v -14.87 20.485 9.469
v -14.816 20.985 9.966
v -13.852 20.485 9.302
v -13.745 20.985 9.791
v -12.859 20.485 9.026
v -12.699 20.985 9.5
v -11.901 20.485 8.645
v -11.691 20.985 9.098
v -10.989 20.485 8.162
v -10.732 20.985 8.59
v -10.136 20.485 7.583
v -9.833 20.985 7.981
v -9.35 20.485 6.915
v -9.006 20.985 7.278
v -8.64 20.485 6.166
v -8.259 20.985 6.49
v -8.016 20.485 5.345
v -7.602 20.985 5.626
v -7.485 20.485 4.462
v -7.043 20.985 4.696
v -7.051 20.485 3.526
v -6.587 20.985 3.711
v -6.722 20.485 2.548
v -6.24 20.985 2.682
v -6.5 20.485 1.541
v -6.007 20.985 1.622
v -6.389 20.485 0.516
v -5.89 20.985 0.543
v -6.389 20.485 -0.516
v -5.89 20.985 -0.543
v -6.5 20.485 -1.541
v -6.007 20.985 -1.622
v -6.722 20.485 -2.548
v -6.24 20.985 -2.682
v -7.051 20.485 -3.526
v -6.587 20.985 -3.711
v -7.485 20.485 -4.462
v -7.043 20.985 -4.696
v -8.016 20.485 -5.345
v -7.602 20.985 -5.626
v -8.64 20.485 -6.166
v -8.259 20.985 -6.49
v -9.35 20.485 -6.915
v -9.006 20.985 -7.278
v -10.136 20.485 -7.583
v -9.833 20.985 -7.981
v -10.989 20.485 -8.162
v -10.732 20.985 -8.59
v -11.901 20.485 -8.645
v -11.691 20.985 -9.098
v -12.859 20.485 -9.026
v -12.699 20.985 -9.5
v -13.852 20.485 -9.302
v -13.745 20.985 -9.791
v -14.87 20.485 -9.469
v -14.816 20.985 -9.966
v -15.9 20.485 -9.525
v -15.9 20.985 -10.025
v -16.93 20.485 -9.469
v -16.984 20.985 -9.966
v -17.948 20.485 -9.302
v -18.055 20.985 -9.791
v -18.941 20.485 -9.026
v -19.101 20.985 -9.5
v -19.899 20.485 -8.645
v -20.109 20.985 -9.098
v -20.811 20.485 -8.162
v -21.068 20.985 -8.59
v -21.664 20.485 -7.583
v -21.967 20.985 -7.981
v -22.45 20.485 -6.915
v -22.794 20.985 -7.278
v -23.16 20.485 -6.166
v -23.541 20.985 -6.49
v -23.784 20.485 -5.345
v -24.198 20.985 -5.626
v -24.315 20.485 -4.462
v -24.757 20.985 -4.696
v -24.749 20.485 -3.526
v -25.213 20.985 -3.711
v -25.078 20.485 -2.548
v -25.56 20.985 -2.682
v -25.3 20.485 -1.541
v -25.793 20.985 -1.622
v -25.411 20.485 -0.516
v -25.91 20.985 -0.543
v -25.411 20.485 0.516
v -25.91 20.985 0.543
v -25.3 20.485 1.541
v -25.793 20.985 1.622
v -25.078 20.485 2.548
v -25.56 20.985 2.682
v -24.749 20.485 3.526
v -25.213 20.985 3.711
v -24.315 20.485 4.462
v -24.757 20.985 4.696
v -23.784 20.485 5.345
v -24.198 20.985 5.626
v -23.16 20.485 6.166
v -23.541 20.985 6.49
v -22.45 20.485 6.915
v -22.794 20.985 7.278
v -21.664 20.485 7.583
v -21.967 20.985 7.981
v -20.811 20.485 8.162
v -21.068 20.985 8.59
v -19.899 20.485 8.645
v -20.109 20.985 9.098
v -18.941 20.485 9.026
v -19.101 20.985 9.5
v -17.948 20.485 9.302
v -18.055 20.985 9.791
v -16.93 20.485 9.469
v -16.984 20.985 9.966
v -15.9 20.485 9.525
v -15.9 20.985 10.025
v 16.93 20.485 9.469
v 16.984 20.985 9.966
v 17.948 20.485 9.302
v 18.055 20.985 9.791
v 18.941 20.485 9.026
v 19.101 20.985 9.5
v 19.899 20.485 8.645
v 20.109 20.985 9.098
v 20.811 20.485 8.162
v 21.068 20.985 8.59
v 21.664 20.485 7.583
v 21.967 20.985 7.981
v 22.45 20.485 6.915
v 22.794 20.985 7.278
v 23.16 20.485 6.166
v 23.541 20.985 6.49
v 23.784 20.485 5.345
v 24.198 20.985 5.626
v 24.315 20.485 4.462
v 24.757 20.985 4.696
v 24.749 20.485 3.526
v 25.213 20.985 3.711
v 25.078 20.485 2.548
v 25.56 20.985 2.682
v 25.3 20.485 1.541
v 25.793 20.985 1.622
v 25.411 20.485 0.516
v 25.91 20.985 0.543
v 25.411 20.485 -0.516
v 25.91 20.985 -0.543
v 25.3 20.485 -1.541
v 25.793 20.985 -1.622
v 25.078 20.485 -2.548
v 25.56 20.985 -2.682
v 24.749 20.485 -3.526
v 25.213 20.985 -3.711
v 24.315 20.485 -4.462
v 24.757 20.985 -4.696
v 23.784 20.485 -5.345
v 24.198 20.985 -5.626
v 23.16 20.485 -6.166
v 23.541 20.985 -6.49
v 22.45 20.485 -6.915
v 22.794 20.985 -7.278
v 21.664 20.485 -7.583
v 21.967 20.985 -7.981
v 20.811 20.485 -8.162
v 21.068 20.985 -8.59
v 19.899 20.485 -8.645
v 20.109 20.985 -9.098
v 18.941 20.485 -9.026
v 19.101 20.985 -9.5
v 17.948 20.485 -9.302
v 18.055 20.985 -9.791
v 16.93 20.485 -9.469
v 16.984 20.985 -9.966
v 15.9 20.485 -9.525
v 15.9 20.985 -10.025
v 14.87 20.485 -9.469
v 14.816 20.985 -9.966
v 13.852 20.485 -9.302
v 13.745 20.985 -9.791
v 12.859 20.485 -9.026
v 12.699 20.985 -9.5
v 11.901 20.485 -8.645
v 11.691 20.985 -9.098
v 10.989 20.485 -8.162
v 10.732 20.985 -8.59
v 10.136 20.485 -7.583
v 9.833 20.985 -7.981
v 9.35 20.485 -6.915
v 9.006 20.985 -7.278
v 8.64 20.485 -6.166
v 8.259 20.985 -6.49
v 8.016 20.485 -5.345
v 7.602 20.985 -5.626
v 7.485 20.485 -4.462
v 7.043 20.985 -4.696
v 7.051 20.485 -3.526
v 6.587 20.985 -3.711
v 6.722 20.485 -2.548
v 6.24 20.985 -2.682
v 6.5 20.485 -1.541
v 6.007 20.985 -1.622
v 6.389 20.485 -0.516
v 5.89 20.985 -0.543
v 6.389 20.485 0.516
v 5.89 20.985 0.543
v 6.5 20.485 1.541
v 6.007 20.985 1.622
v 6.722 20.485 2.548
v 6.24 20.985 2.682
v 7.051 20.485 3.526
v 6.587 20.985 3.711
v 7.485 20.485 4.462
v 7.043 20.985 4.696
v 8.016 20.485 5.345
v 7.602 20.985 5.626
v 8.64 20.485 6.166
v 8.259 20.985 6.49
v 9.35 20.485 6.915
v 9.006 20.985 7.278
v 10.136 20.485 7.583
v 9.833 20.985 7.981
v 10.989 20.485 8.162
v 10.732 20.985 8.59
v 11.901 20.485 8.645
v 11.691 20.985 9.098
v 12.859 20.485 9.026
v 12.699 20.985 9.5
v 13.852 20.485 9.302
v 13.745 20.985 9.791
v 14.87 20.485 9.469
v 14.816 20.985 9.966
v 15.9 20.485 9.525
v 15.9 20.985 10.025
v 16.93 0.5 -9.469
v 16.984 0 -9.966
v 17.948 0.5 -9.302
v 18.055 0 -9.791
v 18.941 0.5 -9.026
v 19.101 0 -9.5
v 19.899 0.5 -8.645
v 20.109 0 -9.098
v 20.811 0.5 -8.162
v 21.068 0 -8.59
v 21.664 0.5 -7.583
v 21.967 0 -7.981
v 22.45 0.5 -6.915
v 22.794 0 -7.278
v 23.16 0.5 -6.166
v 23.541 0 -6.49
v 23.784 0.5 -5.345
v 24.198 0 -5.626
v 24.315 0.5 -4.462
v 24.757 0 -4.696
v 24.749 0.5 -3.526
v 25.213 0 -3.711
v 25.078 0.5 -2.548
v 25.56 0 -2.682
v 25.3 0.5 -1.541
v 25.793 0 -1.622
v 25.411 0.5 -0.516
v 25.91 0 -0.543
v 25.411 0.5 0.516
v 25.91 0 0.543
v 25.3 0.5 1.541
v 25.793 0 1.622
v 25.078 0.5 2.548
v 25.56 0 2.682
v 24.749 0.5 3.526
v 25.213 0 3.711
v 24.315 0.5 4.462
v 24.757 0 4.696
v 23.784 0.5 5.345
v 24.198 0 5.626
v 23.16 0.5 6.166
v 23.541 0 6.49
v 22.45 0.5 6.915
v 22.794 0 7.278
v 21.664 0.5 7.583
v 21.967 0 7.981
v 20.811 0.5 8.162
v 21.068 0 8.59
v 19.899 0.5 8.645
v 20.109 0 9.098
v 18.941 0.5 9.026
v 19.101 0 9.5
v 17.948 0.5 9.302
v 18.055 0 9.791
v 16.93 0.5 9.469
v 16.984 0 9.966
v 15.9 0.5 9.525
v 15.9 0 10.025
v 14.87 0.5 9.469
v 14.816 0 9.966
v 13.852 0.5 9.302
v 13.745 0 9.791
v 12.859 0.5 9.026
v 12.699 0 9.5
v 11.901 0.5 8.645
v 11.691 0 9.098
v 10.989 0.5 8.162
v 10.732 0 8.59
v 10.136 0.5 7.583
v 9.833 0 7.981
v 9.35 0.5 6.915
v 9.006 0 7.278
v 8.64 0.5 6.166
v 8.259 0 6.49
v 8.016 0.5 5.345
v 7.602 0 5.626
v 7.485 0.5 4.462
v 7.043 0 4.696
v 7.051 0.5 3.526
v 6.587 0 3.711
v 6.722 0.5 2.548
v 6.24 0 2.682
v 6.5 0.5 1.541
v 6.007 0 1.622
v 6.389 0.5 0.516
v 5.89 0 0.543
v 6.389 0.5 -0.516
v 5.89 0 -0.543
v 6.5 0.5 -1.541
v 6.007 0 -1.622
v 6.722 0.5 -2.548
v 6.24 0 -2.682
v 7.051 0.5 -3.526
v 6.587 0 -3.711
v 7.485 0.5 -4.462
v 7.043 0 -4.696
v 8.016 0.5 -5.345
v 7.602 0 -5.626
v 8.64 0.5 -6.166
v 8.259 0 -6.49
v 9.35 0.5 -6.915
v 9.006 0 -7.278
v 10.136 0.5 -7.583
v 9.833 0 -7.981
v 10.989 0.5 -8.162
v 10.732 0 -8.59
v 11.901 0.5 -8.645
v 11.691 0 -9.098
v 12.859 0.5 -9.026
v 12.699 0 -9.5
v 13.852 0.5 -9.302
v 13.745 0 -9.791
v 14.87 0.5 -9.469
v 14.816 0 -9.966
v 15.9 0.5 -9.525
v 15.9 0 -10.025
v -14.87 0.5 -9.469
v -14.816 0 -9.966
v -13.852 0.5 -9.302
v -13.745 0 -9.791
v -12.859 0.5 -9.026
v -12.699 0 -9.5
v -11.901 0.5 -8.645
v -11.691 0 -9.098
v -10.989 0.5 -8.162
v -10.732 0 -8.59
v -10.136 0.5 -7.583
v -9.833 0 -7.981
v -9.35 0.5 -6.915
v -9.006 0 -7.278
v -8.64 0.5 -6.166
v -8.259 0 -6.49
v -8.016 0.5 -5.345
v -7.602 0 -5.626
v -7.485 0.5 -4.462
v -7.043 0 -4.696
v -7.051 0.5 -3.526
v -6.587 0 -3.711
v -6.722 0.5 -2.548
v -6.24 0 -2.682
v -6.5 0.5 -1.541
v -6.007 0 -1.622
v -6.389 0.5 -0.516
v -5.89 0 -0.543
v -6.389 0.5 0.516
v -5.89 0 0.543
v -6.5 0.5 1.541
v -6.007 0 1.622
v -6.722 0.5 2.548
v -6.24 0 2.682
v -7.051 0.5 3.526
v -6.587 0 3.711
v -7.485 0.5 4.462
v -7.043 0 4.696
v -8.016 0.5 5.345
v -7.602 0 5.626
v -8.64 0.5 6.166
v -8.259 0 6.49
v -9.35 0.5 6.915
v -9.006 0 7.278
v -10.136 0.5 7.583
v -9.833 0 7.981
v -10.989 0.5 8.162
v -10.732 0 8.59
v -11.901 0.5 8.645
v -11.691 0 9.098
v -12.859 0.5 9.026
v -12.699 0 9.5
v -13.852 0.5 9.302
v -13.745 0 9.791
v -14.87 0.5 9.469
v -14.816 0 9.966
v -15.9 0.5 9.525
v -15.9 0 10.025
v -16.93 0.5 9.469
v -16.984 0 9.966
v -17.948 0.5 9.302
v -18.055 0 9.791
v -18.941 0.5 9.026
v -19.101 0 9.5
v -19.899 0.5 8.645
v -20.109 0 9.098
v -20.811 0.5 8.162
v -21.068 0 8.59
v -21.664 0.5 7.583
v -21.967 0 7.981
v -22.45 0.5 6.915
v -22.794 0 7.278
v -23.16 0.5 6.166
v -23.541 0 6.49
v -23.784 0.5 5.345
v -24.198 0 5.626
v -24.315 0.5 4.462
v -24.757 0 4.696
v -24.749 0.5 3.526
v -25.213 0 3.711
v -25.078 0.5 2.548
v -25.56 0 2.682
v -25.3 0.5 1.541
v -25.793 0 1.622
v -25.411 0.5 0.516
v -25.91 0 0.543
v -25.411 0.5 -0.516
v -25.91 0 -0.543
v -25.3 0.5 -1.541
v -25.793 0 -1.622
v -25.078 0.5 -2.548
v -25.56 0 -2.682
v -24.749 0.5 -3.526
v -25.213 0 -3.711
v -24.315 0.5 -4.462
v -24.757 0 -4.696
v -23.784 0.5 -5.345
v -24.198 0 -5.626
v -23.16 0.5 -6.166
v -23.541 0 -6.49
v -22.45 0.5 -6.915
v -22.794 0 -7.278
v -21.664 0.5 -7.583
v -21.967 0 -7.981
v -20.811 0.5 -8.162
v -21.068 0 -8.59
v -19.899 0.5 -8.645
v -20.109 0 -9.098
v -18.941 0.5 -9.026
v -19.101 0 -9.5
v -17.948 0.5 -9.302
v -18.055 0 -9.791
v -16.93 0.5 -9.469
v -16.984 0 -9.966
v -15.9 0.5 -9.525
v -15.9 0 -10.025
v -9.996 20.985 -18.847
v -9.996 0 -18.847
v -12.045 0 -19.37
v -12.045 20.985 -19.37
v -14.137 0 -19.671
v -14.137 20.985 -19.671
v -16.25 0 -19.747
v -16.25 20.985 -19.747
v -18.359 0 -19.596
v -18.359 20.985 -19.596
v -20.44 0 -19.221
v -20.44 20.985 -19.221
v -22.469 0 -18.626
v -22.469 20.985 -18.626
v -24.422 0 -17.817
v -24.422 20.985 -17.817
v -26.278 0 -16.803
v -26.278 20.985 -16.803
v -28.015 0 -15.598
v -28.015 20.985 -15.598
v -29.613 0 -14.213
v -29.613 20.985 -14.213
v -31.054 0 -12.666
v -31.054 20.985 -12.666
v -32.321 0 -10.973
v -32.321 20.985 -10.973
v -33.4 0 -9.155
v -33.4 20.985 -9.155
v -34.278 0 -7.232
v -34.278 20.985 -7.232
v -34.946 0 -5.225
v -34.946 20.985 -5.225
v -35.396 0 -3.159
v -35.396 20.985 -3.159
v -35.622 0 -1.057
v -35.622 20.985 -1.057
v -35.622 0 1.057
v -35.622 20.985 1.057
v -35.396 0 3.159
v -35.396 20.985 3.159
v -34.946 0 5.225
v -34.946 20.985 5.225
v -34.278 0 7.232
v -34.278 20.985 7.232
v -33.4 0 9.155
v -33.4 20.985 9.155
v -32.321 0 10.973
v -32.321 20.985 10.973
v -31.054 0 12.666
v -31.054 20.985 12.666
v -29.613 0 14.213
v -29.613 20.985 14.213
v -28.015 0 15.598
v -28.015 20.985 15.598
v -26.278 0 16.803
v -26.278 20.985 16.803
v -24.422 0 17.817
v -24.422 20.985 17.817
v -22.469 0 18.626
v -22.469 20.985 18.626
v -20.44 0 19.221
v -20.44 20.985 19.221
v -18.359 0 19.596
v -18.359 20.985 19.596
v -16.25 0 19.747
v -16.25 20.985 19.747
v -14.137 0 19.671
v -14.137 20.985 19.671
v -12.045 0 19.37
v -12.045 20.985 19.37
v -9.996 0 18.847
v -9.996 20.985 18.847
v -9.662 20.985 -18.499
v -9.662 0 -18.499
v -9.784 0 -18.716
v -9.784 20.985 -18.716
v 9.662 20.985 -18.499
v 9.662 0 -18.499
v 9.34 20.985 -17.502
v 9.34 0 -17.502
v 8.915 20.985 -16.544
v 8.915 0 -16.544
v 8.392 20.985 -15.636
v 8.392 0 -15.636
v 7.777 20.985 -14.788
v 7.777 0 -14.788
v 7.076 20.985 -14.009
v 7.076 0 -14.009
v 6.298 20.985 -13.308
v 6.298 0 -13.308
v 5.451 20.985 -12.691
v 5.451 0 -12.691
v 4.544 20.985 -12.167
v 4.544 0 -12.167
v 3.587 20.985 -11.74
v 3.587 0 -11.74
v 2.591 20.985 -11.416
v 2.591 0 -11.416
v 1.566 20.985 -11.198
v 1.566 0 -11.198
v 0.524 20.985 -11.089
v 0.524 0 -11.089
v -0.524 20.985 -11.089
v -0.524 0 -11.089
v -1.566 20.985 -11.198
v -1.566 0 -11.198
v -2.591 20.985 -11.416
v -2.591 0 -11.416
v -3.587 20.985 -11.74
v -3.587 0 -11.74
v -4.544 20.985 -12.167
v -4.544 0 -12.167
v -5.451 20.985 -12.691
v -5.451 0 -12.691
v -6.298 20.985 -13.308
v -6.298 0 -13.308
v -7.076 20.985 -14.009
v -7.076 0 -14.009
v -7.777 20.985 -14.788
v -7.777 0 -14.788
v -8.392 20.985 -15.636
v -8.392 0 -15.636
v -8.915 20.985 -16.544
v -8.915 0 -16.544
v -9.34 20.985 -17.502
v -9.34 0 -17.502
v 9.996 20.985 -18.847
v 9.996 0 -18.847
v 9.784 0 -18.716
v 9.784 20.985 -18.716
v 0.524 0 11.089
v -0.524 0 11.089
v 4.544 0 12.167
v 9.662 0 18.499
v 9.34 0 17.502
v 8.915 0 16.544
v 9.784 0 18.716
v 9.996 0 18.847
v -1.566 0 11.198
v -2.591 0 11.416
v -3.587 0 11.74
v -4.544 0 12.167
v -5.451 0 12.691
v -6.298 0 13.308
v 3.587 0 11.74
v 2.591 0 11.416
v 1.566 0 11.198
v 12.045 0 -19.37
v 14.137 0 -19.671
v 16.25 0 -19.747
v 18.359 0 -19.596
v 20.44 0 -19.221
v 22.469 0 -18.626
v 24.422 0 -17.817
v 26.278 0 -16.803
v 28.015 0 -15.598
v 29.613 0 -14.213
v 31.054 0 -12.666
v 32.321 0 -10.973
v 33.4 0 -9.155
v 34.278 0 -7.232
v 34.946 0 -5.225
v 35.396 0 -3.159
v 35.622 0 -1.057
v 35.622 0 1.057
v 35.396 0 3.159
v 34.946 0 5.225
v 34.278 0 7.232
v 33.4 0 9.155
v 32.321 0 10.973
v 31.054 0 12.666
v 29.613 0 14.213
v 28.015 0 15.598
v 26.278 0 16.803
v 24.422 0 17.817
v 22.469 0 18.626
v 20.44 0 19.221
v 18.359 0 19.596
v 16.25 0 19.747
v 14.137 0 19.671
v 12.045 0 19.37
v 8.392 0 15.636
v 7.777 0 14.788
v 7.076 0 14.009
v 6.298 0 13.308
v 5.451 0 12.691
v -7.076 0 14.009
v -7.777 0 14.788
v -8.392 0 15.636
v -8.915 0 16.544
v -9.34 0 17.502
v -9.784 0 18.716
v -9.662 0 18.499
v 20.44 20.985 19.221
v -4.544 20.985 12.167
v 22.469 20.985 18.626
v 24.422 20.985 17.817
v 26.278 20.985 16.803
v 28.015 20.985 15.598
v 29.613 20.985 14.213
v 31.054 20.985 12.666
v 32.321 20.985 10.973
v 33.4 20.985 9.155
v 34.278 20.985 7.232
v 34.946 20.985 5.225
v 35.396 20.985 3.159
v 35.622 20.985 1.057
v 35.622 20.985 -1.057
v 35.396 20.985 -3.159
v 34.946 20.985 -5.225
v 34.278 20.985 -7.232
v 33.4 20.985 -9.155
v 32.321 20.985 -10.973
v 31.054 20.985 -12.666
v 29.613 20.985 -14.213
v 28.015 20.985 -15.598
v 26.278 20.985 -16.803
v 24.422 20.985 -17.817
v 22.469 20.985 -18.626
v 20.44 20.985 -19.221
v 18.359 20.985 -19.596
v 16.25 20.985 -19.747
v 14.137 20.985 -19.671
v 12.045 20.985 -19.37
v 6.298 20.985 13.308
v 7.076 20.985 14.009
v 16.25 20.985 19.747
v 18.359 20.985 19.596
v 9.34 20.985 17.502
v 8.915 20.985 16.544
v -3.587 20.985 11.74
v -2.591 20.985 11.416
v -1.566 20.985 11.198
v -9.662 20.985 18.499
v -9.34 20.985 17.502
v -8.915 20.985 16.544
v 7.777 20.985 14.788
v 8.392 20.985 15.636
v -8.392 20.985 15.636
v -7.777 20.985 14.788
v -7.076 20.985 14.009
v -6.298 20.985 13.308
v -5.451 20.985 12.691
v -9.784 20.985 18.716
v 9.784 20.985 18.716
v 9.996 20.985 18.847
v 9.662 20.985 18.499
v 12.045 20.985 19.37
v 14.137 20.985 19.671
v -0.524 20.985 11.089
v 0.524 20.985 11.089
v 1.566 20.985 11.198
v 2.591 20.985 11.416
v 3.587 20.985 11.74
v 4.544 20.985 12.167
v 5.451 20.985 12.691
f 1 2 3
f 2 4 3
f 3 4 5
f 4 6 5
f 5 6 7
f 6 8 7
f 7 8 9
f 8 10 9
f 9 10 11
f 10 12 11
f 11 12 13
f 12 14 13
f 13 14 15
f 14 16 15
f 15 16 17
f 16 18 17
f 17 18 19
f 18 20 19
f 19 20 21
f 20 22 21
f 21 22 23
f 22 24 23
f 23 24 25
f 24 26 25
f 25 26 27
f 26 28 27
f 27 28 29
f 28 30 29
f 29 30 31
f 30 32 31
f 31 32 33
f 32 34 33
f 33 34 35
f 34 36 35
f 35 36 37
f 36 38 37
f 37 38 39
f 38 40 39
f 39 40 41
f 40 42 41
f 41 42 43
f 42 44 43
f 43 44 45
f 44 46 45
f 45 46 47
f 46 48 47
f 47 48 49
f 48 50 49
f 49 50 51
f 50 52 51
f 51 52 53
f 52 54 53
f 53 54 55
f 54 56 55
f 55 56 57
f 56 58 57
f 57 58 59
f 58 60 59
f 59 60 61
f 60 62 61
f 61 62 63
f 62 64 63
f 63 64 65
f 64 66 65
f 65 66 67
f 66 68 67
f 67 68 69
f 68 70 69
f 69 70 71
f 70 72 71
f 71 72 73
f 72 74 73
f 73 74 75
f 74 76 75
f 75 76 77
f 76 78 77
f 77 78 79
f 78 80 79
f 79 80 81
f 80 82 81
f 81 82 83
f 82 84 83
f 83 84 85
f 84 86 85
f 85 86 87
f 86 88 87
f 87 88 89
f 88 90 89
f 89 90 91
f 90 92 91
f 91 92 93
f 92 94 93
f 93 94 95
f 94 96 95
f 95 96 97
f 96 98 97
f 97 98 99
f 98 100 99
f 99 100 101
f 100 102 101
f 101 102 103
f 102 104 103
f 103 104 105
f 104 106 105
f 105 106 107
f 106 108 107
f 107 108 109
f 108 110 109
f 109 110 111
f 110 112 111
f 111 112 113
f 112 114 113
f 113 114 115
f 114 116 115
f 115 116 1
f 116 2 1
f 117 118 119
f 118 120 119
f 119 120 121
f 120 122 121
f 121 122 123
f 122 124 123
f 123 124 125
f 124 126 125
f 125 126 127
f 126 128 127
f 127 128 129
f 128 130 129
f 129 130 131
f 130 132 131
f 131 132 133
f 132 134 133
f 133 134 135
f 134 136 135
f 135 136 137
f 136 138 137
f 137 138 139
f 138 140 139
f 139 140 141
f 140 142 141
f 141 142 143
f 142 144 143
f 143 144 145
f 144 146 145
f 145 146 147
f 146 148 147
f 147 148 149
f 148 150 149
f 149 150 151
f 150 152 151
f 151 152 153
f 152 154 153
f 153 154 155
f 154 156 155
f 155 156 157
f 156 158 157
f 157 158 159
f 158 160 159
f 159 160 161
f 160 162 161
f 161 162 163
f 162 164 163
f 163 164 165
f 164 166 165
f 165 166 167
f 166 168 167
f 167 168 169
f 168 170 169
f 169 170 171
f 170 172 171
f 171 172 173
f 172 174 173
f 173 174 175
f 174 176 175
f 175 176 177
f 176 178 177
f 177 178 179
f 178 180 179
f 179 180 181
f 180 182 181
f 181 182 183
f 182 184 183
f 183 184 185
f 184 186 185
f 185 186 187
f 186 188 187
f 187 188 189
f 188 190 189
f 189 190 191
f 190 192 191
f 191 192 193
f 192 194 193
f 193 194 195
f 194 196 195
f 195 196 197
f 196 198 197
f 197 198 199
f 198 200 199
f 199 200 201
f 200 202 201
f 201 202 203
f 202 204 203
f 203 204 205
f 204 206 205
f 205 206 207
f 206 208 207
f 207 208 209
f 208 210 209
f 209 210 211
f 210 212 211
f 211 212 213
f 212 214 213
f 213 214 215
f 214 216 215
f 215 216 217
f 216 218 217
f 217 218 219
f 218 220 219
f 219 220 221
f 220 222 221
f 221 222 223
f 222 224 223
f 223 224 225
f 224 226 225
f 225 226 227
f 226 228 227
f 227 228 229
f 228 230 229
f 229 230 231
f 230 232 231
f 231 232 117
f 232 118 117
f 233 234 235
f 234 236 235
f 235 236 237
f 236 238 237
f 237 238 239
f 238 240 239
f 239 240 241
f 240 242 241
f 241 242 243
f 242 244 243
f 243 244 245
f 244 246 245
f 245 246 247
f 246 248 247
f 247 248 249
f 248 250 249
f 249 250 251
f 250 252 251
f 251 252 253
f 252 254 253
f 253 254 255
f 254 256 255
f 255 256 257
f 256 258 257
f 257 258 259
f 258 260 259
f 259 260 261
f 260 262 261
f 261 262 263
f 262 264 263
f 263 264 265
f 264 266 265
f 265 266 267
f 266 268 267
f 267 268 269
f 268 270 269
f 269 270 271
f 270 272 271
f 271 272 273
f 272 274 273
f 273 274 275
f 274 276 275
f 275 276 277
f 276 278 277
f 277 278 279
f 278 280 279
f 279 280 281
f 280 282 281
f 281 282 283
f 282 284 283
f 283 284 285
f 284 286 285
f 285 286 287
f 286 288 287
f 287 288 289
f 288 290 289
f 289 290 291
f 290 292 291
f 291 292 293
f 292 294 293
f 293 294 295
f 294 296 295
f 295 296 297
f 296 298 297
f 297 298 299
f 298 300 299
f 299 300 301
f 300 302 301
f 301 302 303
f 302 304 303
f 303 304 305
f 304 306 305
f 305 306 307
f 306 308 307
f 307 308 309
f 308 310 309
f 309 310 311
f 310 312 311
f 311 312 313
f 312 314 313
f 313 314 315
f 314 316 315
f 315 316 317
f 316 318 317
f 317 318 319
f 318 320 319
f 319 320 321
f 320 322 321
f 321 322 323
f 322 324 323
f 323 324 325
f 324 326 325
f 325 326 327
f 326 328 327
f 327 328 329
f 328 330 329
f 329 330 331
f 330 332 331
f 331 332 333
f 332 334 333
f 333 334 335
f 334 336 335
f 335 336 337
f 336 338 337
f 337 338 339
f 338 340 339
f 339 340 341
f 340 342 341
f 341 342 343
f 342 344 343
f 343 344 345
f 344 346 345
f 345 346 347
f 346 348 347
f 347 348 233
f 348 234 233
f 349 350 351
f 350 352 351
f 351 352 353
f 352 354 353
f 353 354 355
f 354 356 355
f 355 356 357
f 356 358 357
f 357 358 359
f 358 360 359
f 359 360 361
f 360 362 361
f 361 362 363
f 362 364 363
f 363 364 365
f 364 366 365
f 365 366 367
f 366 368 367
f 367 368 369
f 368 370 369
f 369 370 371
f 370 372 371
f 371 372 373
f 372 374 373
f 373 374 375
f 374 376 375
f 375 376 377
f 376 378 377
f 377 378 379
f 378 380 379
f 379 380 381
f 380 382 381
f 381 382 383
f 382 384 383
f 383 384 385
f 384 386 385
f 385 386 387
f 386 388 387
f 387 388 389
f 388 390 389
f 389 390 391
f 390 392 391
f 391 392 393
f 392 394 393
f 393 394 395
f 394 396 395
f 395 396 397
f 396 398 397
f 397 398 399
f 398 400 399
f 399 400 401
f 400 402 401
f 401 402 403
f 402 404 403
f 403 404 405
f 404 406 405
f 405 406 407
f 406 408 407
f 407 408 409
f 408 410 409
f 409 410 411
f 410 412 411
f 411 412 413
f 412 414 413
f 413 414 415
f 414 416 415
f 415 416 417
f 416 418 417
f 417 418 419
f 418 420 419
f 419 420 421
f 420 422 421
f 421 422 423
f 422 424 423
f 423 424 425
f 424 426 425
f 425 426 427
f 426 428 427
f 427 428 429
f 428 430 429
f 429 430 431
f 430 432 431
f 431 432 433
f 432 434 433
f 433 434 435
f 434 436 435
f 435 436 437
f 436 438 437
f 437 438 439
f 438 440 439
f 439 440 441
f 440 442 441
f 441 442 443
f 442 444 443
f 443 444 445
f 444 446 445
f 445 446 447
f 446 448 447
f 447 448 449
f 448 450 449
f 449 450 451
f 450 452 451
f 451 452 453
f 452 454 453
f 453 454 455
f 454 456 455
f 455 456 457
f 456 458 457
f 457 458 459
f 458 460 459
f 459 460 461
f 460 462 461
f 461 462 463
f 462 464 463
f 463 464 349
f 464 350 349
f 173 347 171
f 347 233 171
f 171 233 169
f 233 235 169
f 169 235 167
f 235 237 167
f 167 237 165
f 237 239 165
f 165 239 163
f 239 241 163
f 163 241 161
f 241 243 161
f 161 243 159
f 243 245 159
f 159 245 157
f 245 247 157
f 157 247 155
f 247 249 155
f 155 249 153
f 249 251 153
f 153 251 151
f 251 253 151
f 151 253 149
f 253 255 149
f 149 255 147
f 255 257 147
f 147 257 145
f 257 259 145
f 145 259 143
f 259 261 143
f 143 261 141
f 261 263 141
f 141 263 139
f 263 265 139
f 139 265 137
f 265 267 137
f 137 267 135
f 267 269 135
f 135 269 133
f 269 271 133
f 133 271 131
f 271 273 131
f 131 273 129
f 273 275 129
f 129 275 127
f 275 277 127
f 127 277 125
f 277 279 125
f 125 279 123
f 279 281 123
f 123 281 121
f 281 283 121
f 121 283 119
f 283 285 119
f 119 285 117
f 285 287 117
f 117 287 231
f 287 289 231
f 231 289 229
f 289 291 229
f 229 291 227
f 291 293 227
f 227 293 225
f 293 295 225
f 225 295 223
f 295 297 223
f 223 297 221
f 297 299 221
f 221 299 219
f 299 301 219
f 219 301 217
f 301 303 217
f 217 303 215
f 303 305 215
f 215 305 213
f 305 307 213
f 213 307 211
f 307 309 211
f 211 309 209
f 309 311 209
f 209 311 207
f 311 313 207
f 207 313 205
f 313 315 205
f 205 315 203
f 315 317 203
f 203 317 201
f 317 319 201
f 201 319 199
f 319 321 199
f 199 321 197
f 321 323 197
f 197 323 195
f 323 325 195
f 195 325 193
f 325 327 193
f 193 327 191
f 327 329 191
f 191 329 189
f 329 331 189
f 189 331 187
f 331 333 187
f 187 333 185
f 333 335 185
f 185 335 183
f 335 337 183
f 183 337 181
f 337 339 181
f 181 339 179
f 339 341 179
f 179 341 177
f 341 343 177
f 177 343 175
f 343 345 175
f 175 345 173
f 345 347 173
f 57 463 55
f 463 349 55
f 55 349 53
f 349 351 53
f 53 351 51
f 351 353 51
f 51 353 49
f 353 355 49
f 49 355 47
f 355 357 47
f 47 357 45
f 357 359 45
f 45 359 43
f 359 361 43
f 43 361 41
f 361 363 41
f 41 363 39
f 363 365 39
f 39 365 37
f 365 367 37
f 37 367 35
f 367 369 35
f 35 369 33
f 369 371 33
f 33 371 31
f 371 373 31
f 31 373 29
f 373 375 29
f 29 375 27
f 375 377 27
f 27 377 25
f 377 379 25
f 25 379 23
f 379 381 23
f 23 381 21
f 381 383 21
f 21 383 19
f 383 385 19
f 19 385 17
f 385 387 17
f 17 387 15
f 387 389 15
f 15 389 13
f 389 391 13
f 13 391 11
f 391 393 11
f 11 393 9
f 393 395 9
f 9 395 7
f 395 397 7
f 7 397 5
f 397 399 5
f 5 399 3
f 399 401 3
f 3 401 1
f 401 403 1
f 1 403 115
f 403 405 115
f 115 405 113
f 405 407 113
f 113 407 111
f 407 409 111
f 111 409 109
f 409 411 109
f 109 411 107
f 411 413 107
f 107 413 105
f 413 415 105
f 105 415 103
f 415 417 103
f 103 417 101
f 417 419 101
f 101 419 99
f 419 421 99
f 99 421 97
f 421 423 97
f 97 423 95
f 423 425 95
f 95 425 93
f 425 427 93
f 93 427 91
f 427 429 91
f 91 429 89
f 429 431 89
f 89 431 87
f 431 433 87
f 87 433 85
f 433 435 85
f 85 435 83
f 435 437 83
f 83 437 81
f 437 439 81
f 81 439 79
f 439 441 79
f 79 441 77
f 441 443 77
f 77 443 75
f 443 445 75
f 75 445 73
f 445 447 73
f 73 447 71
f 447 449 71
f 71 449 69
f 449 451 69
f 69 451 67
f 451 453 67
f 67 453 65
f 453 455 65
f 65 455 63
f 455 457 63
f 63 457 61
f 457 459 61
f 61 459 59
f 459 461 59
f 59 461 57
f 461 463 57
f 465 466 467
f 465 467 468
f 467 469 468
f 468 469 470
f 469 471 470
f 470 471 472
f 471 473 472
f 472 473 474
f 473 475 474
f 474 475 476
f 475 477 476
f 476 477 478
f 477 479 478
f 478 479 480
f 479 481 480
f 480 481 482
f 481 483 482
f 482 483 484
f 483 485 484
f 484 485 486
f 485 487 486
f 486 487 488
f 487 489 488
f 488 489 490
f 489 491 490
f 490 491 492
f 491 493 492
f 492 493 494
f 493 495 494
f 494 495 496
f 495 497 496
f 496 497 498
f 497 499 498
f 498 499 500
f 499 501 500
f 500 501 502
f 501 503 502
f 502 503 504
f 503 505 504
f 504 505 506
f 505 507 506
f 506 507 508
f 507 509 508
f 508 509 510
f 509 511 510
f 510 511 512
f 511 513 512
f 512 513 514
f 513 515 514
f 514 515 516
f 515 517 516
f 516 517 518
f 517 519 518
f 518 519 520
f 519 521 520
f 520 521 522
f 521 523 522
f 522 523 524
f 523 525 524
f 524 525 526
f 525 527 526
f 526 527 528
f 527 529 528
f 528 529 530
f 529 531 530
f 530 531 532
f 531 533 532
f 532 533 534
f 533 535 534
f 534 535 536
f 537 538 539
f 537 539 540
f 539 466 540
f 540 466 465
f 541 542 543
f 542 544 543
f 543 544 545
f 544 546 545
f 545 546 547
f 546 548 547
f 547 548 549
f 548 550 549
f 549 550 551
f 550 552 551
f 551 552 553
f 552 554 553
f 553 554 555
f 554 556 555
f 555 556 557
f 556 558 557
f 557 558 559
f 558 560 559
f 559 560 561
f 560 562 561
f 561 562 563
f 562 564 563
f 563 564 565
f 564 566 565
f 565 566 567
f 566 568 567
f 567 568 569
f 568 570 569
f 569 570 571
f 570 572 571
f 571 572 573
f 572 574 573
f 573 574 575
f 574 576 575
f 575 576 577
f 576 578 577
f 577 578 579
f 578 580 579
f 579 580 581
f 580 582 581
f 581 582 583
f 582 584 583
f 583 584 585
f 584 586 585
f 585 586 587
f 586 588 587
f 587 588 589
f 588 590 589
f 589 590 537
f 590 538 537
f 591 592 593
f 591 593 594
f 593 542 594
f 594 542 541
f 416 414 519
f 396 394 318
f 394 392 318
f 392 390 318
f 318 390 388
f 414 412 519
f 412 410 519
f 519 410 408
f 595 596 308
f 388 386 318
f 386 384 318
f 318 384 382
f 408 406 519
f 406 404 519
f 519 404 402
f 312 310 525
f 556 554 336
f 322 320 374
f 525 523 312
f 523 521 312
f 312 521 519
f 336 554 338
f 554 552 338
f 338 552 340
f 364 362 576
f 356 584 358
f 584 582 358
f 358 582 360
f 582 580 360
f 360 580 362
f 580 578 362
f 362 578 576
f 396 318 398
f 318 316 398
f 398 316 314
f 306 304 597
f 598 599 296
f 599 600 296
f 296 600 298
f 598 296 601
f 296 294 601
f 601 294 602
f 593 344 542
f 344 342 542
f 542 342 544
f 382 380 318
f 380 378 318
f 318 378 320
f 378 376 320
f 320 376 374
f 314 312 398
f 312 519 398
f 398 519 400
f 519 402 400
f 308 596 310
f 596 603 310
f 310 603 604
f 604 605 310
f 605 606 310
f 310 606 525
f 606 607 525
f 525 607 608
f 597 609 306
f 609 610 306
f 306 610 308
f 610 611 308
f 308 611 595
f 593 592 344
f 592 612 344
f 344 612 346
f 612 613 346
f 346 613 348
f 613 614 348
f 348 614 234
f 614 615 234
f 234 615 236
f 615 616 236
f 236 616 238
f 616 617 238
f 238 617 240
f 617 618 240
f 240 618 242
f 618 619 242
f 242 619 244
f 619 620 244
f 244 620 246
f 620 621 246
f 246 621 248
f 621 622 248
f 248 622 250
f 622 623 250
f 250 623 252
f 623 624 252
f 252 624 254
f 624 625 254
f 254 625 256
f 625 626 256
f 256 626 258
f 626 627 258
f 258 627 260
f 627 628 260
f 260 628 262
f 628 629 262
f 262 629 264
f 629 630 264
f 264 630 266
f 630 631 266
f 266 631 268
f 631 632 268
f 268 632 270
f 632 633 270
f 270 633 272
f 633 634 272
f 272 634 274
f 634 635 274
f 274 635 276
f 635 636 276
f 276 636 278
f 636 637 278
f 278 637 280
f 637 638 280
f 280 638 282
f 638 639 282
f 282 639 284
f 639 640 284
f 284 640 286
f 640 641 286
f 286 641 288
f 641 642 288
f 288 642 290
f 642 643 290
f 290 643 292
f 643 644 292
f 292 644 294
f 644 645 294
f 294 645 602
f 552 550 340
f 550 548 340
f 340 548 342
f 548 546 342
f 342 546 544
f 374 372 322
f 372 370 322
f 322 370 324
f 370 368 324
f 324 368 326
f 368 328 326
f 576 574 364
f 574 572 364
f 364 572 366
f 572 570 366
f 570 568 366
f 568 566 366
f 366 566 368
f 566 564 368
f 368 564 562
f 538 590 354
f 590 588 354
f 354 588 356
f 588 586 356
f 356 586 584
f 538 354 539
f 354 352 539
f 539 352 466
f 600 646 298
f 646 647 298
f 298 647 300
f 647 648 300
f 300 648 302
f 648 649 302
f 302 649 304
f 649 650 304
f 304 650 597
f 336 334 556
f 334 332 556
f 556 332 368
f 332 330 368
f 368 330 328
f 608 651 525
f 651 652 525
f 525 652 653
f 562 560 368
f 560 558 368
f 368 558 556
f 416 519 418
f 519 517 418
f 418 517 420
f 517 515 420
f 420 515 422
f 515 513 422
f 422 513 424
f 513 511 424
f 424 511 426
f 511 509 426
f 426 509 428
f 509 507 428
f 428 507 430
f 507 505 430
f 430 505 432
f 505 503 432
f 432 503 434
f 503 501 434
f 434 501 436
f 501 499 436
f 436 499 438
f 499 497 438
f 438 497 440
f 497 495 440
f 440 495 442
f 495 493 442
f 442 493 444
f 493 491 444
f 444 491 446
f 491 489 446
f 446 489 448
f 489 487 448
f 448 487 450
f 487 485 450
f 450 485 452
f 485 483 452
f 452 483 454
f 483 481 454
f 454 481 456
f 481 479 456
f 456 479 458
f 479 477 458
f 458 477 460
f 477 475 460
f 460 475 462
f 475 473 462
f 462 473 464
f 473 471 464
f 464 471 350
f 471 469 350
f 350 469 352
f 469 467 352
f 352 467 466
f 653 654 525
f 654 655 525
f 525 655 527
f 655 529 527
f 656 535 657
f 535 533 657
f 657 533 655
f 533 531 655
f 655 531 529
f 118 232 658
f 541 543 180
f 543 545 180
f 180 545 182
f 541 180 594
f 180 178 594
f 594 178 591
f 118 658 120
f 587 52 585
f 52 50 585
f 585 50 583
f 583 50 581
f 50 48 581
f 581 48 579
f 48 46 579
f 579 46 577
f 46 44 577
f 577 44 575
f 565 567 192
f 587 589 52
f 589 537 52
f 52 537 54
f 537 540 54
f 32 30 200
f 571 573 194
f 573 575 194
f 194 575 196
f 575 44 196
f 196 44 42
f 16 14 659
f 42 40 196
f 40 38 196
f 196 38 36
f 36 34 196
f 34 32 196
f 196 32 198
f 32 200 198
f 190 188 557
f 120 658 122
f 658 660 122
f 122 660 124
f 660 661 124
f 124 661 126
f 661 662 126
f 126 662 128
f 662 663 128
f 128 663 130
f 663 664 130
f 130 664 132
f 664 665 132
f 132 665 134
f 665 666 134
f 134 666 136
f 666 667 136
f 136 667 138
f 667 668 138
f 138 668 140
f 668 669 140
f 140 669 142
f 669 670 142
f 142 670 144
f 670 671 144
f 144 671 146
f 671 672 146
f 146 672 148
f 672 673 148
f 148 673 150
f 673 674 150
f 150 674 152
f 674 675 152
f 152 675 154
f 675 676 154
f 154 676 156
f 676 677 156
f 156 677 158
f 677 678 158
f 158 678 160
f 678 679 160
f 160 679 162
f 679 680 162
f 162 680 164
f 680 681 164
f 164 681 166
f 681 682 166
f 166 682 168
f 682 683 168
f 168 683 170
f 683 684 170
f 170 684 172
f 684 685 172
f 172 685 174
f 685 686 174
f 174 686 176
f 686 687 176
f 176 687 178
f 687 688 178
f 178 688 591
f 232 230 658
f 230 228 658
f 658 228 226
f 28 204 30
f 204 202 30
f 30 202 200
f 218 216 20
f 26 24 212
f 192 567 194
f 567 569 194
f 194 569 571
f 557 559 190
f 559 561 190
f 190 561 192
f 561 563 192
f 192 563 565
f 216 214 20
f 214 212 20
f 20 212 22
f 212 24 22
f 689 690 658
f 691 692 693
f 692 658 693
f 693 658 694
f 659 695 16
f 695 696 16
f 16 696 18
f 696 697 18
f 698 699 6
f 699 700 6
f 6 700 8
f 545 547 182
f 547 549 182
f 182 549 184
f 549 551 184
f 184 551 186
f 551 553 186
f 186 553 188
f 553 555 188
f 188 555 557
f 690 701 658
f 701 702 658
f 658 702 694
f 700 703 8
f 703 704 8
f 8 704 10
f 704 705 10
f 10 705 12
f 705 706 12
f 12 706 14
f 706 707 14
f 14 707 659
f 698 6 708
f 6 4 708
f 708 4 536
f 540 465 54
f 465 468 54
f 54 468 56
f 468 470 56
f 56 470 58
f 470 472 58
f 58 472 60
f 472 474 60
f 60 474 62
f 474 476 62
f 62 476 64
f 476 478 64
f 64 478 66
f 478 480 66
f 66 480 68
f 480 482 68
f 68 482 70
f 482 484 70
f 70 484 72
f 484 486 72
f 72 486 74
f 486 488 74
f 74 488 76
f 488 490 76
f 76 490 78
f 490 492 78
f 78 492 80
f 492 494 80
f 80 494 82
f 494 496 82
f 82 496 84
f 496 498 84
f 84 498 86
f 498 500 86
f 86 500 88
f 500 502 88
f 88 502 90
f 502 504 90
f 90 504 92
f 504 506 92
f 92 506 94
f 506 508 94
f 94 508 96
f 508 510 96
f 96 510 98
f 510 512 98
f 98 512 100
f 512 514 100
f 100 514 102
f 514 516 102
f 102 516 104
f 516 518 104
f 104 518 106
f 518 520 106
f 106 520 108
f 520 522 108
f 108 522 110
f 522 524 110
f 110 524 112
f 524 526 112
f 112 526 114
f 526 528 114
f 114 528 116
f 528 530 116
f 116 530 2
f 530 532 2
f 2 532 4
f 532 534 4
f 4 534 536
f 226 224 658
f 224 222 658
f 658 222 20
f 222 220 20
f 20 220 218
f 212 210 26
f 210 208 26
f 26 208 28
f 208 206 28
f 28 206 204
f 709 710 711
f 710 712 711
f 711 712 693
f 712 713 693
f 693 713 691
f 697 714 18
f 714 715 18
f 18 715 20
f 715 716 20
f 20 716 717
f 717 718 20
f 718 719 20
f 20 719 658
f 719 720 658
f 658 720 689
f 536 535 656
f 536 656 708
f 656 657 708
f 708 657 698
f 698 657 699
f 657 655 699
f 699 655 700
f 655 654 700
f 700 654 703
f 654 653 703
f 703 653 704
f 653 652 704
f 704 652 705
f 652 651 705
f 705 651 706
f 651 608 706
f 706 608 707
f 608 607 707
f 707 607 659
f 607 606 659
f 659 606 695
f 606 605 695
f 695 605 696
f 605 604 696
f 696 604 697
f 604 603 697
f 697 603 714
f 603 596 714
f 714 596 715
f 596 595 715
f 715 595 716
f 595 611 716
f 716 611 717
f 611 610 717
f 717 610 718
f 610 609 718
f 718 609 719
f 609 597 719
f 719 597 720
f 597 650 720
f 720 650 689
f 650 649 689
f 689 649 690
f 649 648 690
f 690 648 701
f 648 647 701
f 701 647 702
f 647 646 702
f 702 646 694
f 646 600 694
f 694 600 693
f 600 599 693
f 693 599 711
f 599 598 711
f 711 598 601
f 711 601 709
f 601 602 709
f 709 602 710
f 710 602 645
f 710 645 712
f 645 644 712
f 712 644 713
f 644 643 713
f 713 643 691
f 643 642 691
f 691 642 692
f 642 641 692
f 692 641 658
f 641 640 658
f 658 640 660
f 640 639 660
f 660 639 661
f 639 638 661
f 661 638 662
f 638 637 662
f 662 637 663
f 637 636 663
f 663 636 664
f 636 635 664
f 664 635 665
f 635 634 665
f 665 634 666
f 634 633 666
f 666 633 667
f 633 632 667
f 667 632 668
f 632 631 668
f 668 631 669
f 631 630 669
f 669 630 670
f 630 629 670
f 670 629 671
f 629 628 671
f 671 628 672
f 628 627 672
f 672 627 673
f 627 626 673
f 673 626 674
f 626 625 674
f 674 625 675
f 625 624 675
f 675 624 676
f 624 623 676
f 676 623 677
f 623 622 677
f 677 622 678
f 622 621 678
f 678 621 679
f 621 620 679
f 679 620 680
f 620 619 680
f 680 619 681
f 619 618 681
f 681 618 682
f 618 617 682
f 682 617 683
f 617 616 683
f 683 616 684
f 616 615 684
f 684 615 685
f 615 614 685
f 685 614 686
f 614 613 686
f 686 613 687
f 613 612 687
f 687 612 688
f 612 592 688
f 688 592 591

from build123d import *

# Parameters (mm, degrees)
SKETCH1_R           = 9.525
BOSS_EXTRUDE1_DEPTH = 20.985
CHAMFER1_SIZE       = 0.5


with BuildPart() as part:
    # Sketch1 → Boss-Extrude1 (new body)
    with BuildSketch(Plane(origin=(0, 0, 0), x_dir=(1, 0, 0), z_dir=(0, 1, 0))):
        with BuildLine():
            ThreePointArc((-9.662407992, 18.498593241), (0, 11.075), (9.662407992, 18.498593241))
            ThreePointArc((9.662407992, 18.498593241), (9.784456714, 18.715644618), (9.996061597, 18.846909862))
            ThreePointArc((9.996061597, 18.846909862), (35.65, 0), (9.996061597, -18.846909862))
            ThreePointArc((9.996061597, -18.846909862), (9.784456714, -18.715644618), (9.662407992, -18.498593241))
            ThreePointArc((9.662407992, -18.498593241), (0, -11.075), (-9.662407992, -18.498593241))
            ThreePointArc((-9.662407992, -18.498593241), (-9.784456714, -18.715644618), (-9.996061597, -18.846909862))
            ThreePointArc((-9.996061597, -18.846909862), (-35.65, 0), (-9.996061597, 18.846909862))
            ThreePointArc((-9.996061597, 18.846909862), (-9.784456714, 18.715644618), (-9.662407992, 18.498593241))
        make_face()
        with Locations(Location((-15.9, 0, 0), (0, 0, 270))):
            Circle(SKETCH1_R, mode=Mode.SUBTRACT)
        with Locations(Location((15.9, 0, 0), (0, 0, 270))):
            Circle(SKETCH1_R, mode=Mode.SUBTRACT)
    extrude(amount=BOSS_EXTRUDE1_DEPTH)

    # Chamfer1
    chamfer1_edges = [part.edges().sort_by_distance(p)[0] for p in [
        (-15.9, 0, -9.525),
        (-15.9, 20.985, -9.525),
        (15.9, 0, -9.525),
        (15.9, 20.985, -9.525),
    ]]
    chamfer(chamfer1_edges, length=CHAMFER1_SIZE)


solid = part.part
